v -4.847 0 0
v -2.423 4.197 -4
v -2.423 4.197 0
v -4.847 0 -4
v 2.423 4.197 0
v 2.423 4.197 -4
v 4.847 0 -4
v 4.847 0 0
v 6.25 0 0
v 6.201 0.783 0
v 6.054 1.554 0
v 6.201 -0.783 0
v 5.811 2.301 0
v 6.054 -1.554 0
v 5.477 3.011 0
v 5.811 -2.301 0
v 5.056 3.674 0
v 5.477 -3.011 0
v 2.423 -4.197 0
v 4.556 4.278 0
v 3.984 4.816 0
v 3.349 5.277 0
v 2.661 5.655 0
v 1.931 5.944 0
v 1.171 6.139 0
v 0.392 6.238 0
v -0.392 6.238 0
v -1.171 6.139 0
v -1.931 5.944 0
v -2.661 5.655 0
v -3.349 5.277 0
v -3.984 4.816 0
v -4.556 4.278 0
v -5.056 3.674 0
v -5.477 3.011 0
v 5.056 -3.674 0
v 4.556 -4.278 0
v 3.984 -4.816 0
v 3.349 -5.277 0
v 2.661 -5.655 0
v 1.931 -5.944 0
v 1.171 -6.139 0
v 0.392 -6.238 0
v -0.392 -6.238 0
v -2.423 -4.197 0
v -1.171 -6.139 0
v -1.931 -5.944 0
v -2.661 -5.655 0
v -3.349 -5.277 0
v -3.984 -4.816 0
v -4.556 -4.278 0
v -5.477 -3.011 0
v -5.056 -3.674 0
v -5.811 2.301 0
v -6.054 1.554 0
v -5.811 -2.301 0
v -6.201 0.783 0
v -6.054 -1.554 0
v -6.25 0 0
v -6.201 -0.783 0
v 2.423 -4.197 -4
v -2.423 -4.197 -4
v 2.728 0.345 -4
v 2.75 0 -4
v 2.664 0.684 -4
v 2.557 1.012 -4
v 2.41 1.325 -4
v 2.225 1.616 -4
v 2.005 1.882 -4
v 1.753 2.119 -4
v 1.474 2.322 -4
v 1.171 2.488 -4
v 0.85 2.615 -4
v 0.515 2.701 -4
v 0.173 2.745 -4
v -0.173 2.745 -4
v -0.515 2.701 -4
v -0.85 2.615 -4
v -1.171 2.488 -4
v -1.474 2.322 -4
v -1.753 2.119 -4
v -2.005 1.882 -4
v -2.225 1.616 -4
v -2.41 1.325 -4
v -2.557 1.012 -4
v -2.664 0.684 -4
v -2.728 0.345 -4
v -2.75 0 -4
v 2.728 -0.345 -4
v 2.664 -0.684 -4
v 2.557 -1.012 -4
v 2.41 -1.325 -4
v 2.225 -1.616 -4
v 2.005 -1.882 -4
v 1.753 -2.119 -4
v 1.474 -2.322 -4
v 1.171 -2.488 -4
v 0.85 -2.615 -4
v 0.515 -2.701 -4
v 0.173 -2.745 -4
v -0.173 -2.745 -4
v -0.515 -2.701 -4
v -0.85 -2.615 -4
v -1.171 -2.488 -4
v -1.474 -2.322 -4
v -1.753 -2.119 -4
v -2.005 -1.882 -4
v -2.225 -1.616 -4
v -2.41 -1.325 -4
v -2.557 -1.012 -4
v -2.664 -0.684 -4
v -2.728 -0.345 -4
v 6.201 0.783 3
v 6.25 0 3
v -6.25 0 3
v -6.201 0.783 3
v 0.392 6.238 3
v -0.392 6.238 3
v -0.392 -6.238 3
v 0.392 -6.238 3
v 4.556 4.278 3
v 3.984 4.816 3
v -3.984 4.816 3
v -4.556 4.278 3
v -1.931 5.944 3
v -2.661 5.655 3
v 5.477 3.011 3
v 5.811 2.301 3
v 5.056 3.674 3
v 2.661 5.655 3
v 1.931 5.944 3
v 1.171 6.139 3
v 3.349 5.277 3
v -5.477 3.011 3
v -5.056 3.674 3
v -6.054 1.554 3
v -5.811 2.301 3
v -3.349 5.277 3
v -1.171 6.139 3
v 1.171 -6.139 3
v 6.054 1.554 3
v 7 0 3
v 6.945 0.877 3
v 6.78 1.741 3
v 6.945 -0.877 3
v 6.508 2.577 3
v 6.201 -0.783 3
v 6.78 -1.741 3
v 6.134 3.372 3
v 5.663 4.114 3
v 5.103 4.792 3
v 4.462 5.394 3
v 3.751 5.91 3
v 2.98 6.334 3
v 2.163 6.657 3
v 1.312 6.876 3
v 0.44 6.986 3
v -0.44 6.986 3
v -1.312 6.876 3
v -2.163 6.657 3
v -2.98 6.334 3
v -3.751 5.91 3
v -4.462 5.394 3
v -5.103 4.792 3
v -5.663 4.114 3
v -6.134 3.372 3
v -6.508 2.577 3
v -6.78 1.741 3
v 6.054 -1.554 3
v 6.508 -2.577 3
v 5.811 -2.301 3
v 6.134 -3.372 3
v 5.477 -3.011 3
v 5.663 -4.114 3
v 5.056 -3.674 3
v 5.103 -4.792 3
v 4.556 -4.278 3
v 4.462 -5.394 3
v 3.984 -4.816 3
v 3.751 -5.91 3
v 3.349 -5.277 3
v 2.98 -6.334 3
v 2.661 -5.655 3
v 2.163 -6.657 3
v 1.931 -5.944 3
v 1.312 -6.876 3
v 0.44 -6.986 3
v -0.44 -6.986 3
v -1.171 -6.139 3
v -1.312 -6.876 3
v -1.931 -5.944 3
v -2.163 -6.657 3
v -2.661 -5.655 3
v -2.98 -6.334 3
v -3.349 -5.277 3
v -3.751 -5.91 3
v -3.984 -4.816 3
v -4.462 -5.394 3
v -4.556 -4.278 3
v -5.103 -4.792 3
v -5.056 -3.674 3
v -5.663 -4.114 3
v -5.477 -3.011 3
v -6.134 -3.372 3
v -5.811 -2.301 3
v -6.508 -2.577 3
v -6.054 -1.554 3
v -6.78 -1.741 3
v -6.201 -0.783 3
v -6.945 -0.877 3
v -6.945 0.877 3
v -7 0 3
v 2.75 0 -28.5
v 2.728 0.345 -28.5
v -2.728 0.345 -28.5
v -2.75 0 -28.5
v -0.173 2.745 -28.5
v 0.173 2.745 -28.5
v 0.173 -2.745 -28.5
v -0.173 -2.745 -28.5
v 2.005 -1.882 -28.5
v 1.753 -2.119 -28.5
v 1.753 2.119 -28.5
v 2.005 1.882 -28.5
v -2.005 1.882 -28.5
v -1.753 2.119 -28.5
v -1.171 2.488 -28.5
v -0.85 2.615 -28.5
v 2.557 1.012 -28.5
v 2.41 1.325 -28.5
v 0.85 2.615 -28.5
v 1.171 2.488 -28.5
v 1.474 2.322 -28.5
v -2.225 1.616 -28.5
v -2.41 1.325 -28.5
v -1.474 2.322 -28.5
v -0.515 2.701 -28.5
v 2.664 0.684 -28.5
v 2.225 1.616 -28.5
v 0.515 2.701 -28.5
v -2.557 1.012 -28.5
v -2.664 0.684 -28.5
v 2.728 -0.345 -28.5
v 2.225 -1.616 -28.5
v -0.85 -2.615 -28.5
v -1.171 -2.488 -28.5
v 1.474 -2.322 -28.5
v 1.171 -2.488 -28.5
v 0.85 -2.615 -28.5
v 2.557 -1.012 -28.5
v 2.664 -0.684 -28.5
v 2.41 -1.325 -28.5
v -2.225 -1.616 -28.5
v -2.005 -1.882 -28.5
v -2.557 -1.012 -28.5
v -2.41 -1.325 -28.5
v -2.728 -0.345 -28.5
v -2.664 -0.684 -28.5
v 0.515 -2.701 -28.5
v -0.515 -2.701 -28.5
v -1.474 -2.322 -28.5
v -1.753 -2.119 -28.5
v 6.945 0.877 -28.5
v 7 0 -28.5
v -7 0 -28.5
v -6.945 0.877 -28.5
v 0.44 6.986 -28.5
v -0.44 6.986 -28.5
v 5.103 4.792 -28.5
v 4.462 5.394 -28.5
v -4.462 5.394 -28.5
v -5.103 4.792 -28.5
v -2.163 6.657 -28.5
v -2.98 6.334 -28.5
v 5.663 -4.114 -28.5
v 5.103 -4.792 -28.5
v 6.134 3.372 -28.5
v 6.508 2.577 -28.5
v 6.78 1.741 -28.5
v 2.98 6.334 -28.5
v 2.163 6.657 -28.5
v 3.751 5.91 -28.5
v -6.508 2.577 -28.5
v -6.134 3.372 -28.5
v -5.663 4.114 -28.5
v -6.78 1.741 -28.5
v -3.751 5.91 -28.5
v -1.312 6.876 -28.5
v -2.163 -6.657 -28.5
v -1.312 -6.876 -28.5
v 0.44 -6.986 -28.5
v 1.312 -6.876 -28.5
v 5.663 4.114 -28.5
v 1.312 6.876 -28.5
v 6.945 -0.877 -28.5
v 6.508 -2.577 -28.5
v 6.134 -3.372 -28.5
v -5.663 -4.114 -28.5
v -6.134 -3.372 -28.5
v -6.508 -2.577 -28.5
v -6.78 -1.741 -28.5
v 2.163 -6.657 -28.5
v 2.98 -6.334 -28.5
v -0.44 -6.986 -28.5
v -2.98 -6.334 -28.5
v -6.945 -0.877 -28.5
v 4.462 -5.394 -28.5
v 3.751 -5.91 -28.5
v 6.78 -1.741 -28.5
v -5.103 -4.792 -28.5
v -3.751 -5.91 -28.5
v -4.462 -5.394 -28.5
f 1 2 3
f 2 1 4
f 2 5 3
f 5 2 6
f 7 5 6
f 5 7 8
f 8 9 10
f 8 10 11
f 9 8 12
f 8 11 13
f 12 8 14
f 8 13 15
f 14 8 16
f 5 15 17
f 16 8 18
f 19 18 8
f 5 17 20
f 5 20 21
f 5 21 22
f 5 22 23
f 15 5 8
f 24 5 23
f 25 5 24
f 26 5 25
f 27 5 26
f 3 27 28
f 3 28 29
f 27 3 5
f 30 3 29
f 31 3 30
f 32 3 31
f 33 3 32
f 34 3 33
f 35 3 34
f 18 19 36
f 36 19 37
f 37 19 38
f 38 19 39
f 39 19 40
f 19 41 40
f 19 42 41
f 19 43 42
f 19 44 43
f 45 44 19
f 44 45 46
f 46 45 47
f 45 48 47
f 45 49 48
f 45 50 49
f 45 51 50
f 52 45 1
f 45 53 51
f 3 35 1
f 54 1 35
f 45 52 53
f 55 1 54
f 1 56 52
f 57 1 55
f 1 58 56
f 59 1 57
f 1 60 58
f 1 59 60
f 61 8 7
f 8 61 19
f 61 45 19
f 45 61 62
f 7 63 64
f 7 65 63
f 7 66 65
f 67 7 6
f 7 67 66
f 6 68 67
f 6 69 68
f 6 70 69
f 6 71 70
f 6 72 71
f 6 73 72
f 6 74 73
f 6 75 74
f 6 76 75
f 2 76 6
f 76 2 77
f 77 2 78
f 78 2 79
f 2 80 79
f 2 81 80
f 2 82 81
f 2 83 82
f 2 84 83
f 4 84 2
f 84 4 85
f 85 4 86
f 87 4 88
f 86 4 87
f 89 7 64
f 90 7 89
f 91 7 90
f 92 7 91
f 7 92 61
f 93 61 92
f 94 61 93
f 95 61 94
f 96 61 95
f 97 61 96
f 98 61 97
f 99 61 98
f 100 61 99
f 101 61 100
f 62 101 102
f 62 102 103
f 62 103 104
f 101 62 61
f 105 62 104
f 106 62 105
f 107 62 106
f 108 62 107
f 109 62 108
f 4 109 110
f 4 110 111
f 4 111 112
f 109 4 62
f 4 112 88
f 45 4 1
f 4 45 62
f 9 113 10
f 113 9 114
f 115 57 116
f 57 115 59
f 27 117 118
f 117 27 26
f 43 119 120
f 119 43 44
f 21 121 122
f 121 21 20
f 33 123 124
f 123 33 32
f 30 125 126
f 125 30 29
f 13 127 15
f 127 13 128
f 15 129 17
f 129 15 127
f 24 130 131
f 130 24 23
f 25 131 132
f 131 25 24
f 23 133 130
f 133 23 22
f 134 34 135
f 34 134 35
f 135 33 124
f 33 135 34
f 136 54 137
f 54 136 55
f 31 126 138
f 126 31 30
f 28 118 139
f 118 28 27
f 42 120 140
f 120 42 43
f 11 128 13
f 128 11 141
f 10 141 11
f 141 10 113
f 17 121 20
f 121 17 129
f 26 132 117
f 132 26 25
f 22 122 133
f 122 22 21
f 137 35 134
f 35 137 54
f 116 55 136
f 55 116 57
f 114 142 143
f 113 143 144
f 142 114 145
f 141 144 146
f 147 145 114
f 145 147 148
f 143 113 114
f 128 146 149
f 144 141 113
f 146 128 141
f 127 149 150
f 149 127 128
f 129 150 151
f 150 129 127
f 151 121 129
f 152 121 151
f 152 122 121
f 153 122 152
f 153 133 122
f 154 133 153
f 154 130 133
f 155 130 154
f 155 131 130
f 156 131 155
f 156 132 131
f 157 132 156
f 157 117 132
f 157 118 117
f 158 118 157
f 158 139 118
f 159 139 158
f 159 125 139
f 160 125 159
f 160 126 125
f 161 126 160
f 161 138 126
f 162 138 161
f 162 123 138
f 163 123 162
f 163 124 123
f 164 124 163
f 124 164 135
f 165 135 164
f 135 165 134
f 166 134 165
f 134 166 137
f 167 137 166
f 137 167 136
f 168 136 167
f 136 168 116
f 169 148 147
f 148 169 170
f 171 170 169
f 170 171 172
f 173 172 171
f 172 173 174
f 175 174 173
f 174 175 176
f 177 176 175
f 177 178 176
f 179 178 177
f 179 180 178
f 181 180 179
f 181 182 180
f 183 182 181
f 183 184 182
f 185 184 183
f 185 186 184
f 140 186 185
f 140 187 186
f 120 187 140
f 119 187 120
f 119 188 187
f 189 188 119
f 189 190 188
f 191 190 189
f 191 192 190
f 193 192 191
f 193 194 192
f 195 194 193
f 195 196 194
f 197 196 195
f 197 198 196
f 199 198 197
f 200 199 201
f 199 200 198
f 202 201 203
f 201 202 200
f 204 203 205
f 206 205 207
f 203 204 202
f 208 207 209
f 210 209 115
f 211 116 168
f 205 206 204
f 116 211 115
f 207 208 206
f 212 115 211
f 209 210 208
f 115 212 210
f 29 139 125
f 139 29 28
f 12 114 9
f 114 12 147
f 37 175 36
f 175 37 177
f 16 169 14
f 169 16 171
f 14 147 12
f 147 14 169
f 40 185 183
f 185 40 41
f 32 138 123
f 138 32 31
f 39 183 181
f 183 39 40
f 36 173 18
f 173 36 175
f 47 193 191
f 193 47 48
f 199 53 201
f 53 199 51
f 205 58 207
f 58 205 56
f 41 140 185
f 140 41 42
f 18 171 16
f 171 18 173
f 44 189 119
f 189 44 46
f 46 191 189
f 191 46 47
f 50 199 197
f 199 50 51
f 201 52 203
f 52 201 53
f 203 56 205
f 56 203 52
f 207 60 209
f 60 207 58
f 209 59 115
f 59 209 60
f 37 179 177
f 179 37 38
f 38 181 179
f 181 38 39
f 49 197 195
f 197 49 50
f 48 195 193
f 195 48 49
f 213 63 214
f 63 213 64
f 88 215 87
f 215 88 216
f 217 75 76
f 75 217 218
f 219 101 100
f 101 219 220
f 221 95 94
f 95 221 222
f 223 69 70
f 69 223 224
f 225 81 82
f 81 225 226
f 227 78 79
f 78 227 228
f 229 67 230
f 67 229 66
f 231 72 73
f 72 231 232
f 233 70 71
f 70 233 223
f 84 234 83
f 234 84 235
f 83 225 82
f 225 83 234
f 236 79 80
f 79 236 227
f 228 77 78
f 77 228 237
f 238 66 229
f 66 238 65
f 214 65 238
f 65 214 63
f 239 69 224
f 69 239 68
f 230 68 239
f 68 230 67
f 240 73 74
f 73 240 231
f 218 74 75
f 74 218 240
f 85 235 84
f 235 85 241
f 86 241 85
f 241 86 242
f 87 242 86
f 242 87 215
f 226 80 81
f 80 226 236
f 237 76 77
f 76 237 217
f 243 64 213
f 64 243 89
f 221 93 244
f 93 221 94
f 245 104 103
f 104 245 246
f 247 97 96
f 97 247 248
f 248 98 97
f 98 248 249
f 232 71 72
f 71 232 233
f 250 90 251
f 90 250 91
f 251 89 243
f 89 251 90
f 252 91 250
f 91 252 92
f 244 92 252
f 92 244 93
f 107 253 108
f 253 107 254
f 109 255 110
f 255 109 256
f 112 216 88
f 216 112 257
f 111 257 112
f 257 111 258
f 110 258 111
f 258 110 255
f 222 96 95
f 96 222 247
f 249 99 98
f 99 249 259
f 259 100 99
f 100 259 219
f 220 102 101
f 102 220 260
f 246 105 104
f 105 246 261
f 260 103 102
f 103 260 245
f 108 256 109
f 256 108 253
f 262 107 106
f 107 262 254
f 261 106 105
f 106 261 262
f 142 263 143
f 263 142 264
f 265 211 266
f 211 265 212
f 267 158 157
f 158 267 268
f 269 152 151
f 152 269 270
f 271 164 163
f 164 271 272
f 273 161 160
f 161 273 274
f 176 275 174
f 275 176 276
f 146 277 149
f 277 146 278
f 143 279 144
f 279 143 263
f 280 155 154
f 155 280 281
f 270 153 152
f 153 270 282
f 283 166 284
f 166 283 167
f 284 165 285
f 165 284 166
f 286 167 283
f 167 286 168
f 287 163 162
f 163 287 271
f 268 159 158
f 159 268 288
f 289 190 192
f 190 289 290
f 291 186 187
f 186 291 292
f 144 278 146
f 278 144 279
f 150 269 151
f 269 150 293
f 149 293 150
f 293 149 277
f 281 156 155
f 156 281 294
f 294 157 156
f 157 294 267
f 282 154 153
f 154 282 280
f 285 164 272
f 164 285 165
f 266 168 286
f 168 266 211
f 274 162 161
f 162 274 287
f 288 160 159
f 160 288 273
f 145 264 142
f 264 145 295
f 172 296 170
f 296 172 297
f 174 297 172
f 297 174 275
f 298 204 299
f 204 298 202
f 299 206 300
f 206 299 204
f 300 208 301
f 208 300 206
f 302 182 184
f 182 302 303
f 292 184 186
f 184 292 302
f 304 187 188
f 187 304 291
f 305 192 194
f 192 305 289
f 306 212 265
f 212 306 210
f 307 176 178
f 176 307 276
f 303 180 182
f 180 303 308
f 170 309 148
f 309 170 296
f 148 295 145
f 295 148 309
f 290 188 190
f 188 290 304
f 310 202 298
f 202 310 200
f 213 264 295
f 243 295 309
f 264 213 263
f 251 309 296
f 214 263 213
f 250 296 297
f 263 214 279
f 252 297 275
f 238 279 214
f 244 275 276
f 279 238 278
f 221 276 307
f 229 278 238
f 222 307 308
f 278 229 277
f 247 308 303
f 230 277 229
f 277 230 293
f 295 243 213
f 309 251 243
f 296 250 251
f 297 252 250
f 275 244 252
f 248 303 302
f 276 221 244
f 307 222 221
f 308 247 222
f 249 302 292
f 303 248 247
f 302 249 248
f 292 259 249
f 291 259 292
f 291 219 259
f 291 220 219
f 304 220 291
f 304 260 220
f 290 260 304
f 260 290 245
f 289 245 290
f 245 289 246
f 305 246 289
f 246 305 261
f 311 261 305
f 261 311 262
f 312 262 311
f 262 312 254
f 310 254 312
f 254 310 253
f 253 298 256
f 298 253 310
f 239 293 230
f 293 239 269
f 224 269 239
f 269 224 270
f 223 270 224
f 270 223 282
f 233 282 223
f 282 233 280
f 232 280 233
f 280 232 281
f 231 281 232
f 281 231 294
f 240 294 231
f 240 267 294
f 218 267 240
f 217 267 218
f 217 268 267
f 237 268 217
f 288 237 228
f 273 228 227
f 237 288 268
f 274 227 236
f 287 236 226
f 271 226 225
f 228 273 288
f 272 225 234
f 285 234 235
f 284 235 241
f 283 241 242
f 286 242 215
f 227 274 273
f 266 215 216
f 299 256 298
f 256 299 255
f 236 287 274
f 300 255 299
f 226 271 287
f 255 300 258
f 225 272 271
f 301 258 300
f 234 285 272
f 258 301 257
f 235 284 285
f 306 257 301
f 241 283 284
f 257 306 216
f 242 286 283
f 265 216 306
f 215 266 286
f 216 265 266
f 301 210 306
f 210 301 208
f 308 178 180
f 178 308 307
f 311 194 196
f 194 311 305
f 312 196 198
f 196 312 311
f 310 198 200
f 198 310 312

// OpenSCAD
$fn = 50;

difference() {
	union() {
		translate(v = [0, 0, -28.5]) {
			cylinder(h = 31.5, r = 7.0);
		}
	}
	union() {
		translate(v = [0, 0, 0]) {
			rotate(a = [0, 0, 0]) {
				difference() {
					union() {
						translate(v = [0, 0, -4]) {
							linear_extrude(height = 4) {
								polygon(points = [[4.8468, 0.0], [2.4234000000000004, 4.197451927062417], [-2.423399999999999, 4.197451927062417], [-4.8468, 5.935618106107392e-16], [-2.423400000000002, -4.197451927062416], [2.423399999999997, -4.197451927062419]]);
							}
						}
					}
					union();
				}
			}
		}
		#cylinder(h = 3, r = 6.25);
		#translate(v = [0, 0, -100.0]) {
			cylinder(h = 200, r = 2.75);
		}
	}
}
